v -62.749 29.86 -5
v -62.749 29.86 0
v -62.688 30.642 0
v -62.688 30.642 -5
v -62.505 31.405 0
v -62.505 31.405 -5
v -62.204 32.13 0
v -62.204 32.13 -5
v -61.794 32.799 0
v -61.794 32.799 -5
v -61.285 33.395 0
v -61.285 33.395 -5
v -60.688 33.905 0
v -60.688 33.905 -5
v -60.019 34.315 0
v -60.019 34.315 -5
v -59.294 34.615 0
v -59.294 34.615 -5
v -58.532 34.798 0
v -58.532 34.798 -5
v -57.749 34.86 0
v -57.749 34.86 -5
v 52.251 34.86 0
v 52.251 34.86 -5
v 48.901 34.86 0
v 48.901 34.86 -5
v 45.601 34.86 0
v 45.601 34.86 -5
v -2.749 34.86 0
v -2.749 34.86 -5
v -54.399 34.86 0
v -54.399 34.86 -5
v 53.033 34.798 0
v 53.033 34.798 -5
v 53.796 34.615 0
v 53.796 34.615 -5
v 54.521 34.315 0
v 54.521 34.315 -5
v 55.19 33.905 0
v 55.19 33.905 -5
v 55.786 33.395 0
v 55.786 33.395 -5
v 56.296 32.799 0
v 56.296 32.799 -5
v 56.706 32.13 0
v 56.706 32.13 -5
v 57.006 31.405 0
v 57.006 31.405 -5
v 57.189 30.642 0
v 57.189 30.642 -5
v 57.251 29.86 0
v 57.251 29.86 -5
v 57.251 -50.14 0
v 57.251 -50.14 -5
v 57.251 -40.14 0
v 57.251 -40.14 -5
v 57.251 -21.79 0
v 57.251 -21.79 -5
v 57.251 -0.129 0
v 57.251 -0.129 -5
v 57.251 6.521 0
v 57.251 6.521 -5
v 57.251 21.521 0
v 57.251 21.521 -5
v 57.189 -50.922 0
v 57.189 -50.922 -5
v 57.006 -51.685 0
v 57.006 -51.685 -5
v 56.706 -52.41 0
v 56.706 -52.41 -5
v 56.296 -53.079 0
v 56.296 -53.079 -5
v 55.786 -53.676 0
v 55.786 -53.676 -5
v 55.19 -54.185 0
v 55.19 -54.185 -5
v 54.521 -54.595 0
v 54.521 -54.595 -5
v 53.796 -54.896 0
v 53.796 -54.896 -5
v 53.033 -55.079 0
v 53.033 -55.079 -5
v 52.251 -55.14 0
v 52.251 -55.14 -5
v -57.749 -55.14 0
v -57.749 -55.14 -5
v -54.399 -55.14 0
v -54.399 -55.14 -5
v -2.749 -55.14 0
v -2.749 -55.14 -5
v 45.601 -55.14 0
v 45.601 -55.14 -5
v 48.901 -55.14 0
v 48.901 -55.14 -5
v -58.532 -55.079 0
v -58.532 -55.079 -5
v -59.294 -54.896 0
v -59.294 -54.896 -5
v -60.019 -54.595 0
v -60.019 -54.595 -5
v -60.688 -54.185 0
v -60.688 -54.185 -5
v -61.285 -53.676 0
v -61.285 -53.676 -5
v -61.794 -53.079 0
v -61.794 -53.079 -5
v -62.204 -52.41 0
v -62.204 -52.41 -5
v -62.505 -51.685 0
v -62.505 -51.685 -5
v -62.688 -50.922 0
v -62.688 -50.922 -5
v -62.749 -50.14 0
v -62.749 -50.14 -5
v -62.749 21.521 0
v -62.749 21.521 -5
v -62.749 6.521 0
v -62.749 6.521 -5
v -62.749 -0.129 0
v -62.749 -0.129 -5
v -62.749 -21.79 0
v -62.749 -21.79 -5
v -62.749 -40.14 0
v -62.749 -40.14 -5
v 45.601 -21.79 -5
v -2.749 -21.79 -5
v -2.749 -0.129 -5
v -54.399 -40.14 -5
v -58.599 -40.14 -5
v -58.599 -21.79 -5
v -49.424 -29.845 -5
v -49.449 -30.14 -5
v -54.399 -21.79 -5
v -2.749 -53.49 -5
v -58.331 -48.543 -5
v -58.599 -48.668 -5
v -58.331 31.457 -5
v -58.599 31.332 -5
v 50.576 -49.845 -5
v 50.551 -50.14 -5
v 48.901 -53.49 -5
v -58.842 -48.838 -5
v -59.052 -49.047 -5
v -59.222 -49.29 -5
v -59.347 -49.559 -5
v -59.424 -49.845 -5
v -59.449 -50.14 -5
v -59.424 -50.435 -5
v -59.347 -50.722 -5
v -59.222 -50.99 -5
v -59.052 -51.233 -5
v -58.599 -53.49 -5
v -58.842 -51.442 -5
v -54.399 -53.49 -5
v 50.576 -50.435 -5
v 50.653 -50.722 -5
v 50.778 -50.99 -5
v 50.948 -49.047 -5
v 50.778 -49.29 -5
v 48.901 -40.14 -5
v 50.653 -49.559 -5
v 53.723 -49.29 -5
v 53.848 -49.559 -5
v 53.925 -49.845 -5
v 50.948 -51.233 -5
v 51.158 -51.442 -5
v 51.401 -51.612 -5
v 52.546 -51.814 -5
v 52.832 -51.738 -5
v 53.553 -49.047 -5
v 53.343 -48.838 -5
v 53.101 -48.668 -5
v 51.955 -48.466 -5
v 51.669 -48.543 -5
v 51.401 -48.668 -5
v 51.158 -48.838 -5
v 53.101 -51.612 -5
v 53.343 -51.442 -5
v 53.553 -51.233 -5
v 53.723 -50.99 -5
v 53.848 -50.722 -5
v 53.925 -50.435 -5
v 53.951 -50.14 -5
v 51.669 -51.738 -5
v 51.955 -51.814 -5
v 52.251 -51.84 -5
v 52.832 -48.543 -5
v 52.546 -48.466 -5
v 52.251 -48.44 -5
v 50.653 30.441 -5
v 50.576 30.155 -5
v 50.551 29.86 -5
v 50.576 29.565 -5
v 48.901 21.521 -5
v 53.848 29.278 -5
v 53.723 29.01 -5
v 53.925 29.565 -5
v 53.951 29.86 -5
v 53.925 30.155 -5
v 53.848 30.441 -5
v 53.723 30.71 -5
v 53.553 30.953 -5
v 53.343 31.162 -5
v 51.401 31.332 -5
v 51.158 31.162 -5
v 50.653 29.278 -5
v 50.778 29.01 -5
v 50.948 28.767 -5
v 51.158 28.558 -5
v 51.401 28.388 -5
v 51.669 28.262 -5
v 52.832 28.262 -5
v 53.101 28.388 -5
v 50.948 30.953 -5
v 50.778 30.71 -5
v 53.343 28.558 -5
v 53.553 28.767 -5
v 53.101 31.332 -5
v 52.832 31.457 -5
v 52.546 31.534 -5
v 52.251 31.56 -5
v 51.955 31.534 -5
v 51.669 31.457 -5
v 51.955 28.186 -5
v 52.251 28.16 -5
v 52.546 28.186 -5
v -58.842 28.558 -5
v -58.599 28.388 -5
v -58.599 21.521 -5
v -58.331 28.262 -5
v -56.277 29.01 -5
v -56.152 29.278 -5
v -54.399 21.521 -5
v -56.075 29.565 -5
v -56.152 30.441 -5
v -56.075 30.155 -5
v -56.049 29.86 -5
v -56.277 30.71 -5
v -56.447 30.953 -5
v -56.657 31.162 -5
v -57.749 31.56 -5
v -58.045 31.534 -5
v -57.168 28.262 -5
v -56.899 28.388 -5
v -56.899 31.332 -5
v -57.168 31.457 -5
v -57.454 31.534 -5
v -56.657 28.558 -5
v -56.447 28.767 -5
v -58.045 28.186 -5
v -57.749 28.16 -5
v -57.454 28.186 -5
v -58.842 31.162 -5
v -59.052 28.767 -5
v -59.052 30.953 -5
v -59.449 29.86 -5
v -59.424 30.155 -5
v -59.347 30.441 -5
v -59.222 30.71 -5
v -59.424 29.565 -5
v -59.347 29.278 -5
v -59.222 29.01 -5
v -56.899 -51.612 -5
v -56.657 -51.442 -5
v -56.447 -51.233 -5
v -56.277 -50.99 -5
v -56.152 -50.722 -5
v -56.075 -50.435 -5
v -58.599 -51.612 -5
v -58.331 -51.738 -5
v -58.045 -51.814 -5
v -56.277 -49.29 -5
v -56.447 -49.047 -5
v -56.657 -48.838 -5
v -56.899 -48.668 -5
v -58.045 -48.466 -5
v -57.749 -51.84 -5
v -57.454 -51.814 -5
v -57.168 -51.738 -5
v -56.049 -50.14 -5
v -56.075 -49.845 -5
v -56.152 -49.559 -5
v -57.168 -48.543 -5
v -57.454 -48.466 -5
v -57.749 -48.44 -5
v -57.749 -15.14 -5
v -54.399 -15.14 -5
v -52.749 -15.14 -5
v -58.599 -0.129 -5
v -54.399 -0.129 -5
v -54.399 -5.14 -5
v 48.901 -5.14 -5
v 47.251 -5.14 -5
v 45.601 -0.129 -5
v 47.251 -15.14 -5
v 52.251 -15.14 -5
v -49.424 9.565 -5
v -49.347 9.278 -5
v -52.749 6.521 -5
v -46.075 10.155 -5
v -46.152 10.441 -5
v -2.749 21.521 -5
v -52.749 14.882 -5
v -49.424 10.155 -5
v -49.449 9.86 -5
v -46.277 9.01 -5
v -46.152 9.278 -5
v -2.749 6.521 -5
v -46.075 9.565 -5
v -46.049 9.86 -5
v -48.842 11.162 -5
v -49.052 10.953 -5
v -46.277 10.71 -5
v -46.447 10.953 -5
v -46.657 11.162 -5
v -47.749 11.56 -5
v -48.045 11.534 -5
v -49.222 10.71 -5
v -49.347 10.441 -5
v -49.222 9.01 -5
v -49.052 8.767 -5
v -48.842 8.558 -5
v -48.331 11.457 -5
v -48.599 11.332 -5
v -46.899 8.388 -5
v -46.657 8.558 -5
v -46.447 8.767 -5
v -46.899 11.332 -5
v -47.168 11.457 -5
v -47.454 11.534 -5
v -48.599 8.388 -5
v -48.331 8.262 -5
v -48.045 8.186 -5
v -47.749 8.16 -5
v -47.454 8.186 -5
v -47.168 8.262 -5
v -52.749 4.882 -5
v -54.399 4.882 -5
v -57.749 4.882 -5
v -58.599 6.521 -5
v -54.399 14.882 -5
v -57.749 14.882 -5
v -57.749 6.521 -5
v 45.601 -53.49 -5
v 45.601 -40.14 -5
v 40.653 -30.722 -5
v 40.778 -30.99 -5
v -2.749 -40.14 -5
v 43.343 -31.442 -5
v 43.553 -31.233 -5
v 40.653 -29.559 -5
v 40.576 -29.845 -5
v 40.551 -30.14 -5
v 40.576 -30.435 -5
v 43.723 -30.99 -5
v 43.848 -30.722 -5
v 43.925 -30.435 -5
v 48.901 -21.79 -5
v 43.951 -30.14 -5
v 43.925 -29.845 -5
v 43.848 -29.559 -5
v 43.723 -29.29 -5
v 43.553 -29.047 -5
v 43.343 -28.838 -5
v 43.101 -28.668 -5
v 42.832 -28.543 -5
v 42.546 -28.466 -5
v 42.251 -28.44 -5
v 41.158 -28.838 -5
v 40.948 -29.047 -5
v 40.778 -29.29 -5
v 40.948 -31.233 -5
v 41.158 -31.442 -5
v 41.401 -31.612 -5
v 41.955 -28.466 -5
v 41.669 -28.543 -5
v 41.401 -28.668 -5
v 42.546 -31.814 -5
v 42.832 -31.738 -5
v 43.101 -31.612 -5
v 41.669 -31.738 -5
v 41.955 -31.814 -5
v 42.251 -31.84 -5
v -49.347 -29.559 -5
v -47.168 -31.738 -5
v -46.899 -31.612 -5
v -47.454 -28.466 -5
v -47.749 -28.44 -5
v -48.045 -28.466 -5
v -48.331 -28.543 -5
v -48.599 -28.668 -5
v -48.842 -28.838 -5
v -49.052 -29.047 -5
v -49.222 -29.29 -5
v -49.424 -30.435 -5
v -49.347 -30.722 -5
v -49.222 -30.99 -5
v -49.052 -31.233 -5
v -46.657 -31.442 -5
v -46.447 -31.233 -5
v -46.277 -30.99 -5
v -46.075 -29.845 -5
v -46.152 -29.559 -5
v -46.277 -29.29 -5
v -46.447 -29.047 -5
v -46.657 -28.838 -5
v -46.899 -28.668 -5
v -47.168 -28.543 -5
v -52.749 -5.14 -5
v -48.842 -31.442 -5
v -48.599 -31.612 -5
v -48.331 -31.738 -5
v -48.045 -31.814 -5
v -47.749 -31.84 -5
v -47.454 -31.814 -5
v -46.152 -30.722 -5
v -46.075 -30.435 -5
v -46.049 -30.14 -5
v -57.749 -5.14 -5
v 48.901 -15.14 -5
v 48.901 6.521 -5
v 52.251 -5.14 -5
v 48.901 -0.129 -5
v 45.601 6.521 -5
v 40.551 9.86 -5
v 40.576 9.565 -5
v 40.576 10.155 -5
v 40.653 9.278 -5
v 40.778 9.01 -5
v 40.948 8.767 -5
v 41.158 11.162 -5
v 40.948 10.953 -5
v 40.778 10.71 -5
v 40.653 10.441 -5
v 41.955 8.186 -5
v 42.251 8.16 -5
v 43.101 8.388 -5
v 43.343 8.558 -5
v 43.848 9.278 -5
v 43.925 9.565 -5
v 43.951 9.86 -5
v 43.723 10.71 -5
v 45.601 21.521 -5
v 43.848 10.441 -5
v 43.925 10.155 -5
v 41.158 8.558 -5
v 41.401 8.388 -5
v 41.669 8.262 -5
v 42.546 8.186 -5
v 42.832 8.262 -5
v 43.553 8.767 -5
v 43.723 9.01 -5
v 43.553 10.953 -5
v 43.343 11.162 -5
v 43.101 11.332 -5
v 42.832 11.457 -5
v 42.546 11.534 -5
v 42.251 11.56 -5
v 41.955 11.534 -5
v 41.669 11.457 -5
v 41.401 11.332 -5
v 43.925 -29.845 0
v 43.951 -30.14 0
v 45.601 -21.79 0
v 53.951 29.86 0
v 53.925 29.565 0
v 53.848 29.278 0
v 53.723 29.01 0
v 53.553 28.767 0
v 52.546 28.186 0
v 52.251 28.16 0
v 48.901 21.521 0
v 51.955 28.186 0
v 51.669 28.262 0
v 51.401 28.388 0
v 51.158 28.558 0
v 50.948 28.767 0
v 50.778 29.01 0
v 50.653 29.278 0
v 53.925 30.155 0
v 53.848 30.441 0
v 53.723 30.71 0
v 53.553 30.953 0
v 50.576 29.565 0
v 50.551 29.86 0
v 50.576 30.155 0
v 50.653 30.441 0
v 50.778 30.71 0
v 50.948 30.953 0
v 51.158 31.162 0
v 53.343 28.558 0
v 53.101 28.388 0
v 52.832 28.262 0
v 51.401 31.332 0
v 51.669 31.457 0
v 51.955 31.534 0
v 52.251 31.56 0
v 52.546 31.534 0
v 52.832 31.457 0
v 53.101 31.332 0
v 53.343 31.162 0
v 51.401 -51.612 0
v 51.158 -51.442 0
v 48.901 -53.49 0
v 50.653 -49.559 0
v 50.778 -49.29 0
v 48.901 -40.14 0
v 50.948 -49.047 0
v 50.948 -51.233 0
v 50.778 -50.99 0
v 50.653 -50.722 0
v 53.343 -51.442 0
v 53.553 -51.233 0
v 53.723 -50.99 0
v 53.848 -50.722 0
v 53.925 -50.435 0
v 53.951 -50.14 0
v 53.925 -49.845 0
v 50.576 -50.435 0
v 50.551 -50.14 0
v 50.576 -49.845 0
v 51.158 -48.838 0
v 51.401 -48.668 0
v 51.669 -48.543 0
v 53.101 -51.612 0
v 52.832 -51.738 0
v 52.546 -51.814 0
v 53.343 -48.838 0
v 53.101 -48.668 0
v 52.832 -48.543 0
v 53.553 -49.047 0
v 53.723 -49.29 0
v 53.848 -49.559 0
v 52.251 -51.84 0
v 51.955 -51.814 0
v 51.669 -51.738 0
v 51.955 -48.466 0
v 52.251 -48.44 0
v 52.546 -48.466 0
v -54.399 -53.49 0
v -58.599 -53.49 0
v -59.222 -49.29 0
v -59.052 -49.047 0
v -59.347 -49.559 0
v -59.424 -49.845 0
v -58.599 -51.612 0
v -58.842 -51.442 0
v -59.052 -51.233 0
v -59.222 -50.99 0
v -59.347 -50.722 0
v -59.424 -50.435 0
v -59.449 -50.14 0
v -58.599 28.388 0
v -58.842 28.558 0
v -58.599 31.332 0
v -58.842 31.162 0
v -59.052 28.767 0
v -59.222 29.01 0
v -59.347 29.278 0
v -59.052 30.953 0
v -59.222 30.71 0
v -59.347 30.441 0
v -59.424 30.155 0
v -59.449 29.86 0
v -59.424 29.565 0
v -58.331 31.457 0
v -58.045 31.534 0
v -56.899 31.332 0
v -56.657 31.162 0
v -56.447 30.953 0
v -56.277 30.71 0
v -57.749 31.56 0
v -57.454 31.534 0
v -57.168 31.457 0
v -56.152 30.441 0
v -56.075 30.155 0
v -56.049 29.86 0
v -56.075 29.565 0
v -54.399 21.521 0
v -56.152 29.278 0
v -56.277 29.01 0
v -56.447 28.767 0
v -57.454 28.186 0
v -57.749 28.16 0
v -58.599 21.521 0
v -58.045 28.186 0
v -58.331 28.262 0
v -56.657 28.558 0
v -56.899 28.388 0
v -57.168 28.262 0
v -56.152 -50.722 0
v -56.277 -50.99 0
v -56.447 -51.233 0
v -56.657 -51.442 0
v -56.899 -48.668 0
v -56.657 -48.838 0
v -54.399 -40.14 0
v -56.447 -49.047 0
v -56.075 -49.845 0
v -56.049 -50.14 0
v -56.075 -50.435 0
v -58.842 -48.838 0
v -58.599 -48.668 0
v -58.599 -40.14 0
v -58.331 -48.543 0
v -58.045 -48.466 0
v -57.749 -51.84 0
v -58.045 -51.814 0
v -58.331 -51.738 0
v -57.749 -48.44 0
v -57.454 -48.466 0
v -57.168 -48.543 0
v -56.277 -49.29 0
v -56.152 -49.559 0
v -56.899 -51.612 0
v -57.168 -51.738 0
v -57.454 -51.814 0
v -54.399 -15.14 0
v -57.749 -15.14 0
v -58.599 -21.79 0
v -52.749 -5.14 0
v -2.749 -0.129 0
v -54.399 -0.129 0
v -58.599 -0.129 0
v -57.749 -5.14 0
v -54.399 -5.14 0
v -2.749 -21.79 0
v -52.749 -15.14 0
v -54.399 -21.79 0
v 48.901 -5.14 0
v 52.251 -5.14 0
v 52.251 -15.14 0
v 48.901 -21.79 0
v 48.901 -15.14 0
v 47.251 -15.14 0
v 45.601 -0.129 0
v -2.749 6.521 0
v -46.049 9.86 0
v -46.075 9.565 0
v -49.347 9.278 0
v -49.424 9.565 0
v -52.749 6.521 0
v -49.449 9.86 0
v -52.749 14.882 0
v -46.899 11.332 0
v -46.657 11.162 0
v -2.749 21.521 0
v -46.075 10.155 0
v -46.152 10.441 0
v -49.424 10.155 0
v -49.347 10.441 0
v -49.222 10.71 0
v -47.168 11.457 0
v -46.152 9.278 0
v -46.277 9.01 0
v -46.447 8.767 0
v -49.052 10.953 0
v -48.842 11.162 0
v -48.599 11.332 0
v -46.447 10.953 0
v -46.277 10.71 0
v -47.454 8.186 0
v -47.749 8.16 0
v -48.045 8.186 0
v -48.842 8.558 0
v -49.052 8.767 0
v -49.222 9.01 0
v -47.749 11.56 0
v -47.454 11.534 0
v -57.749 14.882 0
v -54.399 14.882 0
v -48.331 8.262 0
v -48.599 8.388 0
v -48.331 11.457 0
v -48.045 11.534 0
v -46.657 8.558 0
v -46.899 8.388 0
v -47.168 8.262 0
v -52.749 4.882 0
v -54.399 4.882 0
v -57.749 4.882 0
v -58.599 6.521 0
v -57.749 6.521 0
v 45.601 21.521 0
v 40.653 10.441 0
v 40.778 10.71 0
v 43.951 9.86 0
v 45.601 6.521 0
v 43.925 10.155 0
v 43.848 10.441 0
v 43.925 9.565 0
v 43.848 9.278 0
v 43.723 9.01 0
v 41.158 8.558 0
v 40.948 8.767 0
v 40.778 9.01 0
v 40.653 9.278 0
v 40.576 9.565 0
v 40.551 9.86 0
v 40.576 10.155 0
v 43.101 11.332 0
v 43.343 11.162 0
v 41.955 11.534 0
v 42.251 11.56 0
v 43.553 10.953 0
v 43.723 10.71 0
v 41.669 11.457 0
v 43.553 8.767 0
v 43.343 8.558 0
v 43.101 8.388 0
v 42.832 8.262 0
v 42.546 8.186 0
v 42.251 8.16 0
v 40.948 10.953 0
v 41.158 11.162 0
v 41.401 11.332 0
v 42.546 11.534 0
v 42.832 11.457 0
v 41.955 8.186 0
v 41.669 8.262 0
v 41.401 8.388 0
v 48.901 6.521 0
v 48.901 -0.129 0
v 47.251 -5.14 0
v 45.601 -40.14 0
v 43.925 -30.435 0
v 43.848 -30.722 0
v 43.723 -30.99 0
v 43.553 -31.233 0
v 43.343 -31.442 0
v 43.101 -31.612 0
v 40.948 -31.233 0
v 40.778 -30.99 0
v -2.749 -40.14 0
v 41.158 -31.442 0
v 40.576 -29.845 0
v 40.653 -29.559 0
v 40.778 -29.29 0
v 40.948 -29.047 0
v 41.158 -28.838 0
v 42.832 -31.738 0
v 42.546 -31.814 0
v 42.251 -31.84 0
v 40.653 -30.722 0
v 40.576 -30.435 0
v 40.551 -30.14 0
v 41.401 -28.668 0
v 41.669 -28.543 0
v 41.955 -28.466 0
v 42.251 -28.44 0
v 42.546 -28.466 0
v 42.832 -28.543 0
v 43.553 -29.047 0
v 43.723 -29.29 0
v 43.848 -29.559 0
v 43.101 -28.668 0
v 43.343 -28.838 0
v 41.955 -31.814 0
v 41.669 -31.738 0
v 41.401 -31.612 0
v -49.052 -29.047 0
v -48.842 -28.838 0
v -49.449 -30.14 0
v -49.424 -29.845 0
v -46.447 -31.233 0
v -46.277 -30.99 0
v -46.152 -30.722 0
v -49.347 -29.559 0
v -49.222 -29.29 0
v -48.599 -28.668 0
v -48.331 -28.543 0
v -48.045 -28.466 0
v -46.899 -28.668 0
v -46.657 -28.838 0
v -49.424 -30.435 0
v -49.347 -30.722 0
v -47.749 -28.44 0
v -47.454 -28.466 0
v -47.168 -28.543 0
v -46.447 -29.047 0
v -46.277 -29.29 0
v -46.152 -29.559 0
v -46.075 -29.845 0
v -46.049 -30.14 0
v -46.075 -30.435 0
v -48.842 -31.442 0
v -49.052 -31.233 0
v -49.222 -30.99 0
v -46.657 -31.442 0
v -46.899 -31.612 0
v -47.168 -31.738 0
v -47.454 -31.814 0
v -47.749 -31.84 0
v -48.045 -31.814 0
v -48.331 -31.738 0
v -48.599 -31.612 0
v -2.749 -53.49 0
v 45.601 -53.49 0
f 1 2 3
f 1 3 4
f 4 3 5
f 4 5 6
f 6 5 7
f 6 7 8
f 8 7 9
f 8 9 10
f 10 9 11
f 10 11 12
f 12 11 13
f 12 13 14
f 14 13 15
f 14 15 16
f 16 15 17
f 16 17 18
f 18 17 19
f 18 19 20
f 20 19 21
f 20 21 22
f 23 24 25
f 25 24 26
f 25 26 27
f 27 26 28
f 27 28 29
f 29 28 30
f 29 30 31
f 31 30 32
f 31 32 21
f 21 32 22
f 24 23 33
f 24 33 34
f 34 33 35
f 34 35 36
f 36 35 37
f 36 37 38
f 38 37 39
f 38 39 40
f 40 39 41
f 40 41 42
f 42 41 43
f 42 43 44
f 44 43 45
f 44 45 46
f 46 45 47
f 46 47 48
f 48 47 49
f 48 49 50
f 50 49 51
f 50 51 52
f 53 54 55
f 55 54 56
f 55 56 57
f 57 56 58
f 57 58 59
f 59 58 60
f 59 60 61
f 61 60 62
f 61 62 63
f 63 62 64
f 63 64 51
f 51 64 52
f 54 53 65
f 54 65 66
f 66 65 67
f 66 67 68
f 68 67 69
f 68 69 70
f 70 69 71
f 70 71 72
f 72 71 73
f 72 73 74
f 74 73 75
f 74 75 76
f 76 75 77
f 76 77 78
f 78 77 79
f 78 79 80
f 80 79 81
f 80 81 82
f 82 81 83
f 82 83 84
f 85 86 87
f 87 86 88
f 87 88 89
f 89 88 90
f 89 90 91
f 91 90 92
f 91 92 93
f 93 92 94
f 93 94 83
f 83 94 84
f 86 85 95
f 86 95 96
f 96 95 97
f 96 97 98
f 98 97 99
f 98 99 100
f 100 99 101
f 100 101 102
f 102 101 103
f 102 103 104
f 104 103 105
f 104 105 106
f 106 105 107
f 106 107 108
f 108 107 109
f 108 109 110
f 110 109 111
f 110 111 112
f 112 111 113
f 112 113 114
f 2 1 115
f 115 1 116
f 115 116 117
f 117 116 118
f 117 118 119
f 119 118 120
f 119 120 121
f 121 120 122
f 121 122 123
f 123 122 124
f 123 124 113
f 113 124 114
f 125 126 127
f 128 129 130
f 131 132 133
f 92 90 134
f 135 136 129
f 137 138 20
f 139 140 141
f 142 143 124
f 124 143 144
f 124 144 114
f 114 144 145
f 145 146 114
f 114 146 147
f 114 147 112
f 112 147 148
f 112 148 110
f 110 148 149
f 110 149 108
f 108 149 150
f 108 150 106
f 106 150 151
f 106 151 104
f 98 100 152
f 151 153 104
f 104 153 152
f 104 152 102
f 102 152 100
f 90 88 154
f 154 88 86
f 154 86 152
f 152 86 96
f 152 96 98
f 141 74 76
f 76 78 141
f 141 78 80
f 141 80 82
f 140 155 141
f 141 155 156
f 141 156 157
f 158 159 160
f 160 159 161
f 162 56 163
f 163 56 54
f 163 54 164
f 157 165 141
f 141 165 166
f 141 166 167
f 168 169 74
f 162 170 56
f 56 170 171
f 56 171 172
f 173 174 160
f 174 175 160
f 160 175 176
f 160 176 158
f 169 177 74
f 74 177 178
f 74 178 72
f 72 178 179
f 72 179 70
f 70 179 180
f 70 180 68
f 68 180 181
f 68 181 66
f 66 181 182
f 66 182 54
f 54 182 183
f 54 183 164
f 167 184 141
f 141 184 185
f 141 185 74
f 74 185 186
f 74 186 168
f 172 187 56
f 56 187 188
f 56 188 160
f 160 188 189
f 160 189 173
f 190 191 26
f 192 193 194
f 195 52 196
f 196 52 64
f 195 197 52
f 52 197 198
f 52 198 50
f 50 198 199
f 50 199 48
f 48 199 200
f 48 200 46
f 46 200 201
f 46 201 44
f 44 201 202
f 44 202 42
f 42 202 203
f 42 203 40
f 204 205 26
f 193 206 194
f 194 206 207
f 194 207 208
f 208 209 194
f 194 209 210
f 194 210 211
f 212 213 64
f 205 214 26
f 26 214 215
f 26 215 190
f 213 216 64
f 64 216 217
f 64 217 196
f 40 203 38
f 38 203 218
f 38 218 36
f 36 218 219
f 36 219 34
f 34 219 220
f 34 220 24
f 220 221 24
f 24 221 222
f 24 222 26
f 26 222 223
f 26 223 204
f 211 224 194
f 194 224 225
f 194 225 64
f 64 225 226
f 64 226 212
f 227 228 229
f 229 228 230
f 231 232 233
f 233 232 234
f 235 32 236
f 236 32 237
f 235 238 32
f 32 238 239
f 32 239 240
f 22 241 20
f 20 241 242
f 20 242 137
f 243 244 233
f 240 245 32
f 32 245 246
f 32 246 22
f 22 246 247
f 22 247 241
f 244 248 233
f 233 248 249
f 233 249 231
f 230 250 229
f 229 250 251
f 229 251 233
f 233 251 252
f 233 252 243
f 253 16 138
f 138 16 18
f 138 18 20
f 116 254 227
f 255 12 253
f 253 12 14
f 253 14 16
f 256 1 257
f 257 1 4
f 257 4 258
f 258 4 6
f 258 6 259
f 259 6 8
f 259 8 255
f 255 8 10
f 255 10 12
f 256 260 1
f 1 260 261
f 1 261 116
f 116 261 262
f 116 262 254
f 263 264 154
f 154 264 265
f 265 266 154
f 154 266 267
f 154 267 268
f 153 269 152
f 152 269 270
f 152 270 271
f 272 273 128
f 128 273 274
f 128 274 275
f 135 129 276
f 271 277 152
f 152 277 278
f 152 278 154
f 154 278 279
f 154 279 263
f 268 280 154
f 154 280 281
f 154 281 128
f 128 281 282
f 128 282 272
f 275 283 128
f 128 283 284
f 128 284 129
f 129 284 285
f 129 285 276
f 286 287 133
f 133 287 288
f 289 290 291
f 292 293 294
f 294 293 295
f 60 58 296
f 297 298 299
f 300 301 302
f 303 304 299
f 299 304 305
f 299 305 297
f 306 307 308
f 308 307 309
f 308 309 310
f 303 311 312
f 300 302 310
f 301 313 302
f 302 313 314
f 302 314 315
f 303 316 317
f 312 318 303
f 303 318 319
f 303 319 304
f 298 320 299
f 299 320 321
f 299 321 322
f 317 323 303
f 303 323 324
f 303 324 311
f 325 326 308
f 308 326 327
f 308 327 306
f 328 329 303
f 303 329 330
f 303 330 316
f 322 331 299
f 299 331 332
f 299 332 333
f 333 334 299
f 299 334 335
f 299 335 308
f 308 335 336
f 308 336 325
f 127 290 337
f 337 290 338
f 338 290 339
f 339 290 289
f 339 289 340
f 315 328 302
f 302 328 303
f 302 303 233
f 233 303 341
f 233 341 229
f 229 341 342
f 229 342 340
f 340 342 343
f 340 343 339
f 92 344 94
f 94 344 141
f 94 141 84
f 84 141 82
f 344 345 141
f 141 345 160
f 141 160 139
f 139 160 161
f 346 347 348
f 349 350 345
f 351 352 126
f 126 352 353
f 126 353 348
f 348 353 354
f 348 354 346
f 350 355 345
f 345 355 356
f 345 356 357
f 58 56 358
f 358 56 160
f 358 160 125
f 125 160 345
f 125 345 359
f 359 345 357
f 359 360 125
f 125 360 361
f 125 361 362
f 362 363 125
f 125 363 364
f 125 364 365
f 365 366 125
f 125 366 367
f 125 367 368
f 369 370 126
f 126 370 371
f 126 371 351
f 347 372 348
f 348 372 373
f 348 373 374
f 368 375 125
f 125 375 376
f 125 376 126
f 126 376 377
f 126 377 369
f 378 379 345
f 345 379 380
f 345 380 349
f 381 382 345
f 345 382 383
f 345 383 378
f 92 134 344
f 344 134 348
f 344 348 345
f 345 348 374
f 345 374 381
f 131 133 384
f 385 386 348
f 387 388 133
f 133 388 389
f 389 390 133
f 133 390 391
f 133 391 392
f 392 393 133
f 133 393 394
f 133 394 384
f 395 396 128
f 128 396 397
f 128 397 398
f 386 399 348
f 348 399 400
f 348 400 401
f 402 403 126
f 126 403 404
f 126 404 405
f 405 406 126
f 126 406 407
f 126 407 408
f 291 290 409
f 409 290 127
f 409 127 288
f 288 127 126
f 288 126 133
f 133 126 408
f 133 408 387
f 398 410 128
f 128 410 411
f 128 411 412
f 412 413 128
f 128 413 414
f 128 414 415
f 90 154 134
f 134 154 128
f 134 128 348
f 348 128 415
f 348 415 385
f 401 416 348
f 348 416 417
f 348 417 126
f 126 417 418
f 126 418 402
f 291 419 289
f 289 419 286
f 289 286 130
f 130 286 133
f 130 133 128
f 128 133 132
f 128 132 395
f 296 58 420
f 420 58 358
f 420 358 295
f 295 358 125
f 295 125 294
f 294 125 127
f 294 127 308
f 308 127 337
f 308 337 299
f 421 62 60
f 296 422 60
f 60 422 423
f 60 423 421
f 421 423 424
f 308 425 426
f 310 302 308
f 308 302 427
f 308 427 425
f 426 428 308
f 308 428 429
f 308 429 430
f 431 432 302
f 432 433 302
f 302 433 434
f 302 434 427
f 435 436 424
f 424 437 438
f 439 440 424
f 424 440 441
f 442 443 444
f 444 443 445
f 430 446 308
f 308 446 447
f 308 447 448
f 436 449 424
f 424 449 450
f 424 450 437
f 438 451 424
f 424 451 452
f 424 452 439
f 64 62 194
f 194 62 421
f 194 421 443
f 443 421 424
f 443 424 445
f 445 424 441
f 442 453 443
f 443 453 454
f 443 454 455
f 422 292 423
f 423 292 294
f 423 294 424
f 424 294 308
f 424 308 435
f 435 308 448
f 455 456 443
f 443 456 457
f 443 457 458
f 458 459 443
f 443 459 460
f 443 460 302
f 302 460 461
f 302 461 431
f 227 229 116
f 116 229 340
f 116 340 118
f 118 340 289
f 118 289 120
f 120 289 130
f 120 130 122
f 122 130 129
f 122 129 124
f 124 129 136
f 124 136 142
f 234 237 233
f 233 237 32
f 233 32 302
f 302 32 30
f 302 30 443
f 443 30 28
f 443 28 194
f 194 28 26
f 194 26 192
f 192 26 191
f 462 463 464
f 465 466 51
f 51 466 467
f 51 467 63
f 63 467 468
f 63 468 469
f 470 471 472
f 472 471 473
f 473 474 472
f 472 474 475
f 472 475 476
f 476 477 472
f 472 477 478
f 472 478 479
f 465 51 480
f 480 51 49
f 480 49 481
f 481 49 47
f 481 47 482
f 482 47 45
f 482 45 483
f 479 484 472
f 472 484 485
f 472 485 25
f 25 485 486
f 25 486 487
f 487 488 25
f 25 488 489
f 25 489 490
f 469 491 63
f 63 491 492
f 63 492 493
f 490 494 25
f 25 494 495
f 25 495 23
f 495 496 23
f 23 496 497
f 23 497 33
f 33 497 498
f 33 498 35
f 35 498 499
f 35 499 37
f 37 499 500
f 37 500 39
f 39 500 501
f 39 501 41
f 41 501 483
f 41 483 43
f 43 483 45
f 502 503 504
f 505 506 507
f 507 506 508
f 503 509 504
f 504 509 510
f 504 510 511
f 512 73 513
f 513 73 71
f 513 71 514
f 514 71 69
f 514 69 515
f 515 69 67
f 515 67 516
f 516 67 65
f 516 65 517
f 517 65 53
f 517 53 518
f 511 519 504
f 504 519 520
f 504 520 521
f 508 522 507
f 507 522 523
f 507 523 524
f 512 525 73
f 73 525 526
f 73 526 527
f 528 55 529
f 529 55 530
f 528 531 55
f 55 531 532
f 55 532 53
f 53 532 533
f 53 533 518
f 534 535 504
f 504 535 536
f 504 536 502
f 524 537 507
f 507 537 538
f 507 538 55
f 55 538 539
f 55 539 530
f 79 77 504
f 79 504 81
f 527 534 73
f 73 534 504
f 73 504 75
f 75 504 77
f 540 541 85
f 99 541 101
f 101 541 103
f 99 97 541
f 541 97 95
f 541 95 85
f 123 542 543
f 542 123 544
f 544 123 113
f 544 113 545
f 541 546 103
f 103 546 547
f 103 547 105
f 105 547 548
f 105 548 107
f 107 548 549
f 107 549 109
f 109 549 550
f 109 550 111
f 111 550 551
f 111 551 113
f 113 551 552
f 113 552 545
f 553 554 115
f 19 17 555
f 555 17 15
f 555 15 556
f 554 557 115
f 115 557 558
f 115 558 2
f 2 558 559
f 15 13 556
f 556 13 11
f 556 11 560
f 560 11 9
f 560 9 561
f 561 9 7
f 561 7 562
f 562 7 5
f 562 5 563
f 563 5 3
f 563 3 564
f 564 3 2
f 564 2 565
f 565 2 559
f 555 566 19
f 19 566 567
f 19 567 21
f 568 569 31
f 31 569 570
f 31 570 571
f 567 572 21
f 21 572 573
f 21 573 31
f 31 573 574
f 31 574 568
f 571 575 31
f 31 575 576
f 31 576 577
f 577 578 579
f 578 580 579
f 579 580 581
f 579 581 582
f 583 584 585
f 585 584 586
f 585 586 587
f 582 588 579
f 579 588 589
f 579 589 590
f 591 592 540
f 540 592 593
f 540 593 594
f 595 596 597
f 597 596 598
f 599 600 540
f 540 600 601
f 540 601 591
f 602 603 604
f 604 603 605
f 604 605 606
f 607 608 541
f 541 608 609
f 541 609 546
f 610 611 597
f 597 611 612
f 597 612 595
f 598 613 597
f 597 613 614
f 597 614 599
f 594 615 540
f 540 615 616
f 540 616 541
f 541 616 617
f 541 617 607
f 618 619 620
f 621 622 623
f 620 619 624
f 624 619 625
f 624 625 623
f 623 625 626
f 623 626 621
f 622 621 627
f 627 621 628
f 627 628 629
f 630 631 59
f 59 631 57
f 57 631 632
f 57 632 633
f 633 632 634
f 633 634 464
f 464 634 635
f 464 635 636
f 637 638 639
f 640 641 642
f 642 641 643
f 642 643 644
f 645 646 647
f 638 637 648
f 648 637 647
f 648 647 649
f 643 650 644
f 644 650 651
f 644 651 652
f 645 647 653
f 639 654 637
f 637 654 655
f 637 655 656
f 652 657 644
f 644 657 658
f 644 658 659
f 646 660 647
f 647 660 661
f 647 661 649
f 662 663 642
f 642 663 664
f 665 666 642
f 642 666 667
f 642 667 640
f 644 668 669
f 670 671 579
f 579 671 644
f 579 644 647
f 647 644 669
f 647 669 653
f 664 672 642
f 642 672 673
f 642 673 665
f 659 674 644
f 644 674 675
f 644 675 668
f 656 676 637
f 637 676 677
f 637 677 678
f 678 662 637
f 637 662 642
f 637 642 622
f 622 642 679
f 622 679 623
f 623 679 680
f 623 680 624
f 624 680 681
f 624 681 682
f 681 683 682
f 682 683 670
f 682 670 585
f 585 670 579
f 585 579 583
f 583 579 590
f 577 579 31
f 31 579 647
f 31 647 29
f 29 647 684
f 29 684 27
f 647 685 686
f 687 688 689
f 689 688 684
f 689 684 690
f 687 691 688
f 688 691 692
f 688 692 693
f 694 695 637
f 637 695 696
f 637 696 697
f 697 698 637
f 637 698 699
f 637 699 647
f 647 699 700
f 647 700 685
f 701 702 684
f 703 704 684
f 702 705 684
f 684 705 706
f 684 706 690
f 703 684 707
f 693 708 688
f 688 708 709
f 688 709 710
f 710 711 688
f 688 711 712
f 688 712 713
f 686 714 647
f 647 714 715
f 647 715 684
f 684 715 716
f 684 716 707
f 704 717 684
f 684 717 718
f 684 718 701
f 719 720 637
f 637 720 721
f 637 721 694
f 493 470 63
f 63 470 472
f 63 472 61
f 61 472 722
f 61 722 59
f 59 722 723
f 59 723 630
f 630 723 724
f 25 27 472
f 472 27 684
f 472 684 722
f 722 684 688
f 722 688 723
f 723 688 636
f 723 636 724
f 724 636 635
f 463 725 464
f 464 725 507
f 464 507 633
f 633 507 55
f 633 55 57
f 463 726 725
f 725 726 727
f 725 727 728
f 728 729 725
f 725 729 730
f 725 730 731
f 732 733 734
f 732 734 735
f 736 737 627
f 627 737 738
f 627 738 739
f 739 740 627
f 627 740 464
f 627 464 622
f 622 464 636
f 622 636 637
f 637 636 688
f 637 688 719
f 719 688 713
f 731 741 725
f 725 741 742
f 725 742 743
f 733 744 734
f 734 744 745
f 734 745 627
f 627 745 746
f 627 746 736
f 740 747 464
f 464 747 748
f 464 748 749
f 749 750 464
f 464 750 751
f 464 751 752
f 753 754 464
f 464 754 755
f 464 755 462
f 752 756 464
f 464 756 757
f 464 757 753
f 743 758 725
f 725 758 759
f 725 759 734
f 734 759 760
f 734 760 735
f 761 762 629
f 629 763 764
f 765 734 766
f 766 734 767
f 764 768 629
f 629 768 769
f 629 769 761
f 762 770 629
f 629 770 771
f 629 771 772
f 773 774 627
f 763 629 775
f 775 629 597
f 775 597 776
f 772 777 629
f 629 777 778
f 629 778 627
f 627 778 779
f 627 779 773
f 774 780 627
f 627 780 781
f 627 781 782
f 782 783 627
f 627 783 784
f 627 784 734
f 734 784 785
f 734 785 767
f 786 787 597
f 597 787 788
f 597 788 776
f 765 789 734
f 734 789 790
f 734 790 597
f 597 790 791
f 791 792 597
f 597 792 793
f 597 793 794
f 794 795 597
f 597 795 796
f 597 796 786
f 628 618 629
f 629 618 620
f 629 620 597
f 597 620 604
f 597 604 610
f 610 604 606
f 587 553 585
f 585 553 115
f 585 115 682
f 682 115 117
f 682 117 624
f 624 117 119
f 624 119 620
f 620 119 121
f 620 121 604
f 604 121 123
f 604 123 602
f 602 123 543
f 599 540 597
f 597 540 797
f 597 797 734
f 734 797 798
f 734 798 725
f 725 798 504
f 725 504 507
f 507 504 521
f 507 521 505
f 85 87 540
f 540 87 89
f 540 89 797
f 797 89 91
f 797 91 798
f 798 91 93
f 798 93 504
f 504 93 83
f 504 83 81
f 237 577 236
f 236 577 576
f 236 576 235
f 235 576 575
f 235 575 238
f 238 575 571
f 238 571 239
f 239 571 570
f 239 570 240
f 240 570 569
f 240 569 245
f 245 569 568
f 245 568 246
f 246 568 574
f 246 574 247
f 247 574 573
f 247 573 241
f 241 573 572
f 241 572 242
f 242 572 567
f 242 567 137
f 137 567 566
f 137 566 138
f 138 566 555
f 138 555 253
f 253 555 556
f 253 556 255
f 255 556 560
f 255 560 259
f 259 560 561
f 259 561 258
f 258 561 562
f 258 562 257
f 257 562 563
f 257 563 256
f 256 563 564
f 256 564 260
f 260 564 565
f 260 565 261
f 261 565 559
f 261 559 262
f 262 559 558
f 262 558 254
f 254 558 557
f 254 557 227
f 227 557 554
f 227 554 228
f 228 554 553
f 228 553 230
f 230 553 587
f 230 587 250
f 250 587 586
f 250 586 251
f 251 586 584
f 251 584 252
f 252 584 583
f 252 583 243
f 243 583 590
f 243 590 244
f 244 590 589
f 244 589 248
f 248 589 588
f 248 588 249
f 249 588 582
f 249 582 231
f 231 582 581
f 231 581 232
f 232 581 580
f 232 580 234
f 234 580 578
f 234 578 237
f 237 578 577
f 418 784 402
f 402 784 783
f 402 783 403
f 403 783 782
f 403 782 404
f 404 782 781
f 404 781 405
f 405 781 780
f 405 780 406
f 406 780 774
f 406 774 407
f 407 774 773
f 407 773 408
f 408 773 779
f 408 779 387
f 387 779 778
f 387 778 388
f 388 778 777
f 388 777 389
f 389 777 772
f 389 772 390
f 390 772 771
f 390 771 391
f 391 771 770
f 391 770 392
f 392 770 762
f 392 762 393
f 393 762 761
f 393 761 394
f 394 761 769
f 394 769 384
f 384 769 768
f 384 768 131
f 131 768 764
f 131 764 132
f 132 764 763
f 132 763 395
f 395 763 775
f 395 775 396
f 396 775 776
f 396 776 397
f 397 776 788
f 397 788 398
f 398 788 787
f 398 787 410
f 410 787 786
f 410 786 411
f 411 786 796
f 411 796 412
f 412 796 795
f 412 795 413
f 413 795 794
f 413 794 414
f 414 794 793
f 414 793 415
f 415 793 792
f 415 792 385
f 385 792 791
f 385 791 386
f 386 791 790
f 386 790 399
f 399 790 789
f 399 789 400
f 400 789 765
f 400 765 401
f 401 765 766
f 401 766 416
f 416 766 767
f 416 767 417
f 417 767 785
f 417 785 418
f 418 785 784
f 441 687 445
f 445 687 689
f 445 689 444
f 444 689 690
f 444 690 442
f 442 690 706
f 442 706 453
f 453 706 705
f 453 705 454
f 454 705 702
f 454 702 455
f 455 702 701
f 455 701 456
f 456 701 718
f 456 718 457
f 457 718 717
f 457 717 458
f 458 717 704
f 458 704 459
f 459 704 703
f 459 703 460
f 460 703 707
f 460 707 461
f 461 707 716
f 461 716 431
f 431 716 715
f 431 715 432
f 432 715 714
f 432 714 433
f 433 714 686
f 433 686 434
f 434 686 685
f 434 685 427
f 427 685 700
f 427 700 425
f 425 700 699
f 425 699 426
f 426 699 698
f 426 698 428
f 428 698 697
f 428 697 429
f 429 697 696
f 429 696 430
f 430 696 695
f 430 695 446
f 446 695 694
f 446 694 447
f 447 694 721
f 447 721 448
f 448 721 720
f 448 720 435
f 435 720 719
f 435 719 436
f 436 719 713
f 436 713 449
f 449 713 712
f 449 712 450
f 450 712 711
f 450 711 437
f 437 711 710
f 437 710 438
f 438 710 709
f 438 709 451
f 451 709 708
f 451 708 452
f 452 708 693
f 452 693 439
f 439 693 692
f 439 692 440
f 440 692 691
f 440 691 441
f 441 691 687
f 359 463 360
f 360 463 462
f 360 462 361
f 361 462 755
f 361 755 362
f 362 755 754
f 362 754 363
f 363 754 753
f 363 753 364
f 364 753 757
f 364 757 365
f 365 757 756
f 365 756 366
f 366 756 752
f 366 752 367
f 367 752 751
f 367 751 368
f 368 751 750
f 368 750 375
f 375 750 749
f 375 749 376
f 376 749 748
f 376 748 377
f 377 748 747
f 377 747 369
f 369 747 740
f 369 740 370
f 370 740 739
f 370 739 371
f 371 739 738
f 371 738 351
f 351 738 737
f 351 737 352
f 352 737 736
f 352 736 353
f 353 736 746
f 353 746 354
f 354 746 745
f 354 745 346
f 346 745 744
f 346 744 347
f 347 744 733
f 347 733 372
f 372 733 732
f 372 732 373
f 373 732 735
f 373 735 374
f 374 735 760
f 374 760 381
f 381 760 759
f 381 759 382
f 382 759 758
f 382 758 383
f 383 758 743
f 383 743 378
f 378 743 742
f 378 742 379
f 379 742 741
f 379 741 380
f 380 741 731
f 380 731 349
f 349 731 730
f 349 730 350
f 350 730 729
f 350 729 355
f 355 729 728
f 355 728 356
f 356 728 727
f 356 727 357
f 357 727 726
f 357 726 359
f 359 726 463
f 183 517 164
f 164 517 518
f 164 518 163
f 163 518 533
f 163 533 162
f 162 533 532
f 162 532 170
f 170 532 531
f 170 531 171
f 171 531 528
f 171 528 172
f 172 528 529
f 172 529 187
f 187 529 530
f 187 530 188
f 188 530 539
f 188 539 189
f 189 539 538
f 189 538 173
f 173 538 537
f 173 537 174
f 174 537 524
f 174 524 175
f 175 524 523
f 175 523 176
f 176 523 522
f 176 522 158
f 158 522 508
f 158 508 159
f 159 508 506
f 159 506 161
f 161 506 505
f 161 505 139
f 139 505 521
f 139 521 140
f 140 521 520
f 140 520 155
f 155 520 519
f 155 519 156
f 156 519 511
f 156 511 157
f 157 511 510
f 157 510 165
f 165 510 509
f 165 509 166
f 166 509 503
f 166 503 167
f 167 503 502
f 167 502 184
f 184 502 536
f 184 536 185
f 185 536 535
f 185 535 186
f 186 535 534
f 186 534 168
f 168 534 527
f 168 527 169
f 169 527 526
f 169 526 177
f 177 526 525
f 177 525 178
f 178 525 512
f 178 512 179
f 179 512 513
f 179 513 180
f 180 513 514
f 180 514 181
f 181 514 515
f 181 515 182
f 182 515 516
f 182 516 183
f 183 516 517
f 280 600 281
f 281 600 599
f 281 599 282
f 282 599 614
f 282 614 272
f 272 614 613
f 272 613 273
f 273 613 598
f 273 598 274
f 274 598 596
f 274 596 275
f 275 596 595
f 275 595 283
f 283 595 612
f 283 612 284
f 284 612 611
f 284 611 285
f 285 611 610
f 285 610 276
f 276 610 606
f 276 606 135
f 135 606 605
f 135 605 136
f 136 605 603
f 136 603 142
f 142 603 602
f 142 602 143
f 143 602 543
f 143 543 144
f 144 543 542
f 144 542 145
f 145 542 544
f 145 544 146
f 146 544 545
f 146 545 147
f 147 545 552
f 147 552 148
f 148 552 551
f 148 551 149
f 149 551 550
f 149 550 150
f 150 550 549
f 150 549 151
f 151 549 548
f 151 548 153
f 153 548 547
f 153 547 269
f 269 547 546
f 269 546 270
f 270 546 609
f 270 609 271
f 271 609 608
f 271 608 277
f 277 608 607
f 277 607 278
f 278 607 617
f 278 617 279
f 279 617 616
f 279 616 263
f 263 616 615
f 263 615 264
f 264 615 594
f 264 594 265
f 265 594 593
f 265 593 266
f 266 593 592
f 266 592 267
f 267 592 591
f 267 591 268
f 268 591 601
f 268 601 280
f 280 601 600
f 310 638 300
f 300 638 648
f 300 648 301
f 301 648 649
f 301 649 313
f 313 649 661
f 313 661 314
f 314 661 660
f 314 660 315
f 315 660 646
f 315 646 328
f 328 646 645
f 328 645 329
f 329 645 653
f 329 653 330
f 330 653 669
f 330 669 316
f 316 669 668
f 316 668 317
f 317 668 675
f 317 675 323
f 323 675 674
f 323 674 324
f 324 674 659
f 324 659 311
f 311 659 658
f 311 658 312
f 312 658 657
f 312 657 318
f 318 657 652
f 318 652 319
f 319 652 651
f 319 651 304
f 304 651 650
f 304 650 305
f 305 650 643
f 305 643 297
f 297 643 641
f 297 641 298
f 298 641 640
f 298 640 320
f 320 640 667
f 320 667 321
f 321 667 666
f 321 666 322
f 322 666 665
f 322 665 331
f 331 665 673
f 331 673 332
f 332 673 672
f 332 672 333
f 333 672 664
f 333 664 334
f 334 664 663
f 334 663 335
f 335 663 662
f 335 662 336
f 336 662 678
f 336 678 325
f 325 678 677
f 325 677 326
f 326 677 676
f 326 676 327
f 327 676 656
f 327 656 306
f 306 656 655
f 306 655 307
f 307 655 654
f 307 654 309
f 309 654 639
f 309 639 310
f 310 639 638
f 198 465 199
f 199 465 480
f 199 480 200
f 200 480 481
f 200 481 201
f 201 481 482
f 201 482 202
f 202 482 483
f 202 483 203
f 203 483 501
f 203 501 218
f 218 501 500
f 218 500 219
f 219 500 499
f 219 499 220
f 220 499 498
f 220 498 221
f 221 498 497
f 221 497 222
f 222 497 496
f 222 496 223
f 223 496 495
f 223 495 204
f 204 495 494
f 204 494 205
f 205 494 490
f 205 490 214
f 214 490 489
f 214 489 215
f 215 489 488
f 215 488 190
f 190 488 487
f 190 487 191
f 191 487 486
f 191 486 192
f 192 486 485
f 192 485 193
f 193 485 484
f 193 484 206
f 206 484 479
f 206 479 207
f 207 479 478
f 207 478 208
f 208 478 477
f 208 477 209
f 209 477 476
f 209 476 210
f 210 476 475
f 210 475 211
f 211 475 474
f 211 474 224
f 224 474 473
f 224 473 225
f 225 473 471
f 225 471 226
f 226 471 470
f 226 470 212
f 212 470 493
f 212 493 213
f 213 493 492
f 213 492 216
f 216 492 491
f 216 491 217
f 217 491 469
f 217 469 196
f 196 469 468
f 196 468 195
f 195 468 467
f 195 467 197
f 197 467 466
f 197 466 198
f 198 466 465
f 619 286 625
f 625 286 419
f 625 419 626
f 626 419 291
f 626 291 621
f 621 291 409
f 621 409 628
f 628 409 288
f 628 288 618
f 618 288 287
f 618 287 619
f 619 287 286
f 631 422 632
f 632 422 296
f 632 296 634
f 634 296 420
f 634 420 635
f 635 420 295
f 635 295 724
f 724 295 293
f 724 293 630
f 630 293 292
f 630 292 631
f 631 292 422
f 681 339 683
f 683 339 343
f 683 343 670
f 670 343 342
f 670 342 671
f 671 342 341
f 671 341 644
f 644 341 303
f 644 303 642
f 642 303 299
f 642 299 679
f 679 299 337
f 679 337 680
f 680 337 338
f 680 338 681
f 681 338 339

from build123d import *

# Parameters (mm, degrees)
EXTRUDE_1_DEPTH      = 5
SKETCH_1_4_OUTSIDE_W = 152.016
SKETCH_1_4_OUTSIDE_H = 122.016
SKETCH_1_4_OUTSIDE_R = 1.7
CUT_EXTRUDE_3_DEPTH  = 84.683501662
SKETCH_3_W           = 5
SKETCH_3_H           = 10
CUT_EXTRUDE_4_DEPTH  = 10


with BuildPart() as part:
    # 스케치1 → 보스-돌출1 (new body)
    with BuildSketch(Plane.XY):
        with BuildLine():
            Line((-57.749377558, 34.859778143), (52.250622442, 34.859778143))
            ThreePointArc((52.250622442, 34.859778143), (55.786156348, 33.395312049), (57.250622442, 29.859778143))
            Line((57.250622442, 29.859778143), (57.250622442, -50.140221857))
            ThreePointArc((57.250622442, -50.140221857), (55.786156348, -53.675755763), (52.250622442, -55.140221857))
            Line((52.250622442, -55.140221857), (-57.749377558, -55.140221857))
            ThreePointArc((-57.749377558, -55.140221857), (-61.284911464, -53.675755763), (-62.749377558, -50.140221857))
            Line((-62.749377558, -50.140221857), (-62.749377558, 29.859778143))
            ThreePointArc((-62.749377558, 29.859778143), (-61.284911464, 33.395312049), (-57.749377558, 34.859778143))
        make_face()
    extrude(amount=-EXTRUDE_1_DEPTH)

    # 스케치1<4> outside → 컷-돌출3 (cut, through all)
    # profile 1 of 9: a face of its own
    with BuildSketch(Plane.XY):
        with Locations((-2.749, -10.14)):
            Rectangle(SKETCH_1_4_OUTSIDE_W, SKETCH_1_4_OUTSIDE_H)
        with BuildLine():
            Line((-57.749377558, 34.859778143), (52.250622442, 34.859778143))
            ThreePointArc((52.250622442, 34.859778143), (55.786156348, 33.395312049), (57.250622442, 29.859778143))
            Line((57.250622442, 29.859778143), (57.250622442, -50.140221857))
            ThreePointArc((57.250622442, -50.140221857), (55.786156348, -53.675755763), (52.250622442, -55.140221857))
            Line((52.250622442, -55.140221857), (-57.749377558, -55.140221857))
            ThreePointArc((-57.749377558, -55.140221857), (-61.284911464, -53.675755763), (-62.749377558, -50.140221857))
            Line((-62.749377558, -50.140221857), (-62.749377558, 29.859778143))
            ThreePointArc((-62.749377558, 29.859778143), (-61.284911464, 33.395312049), (-57.749377558, 34.859778143))
        make_face(mode=Mode.SUBTRACT)
    # profile 2 of 9: a face of its own
    with BuildSketch(Plane.XY):
        with Locations((-57.749377558, 29.859778143)):
            Circle(SKETCH_1_4_OUTSIDE_R)
    # profile 3 of 9: a face of its own
    with BuildSketch(Plane.XY):
        with Locations((52.250622442, 29.859778143)):
            Circle(SKETCH_1_4_OUTSIDE_R)
    # profile 4 of 9: a face of its own
    with BuildSketch(Plane.XY):
        with Locations((-57.749377558, -50.140221857)):
            Circle(SKETCH_1_4_OUTSIDE_R)
    # profile 5 of 9: a face of its own
    with BuildSketch(Plane.XY):
        with Locations((52.250622442, -50.140221857)):
            Circle(SKETCH_1_4_OUTSIDE_R)
    # profile 6 of 9: a face of its own
    with BuildSketch(Plane.XY):
        with Locations((-47.749377558, 9.859778143)):
            Circle(SKETCH_1_4_OUTSIDE_R)
    # profile 7 of 9: a face of its own
    with BuildSketch(Plane.XY):
        with Locations((-47.749377558, -30.140221857)):
            Circle(SKETCH_1_4_OUTSIDE_R)
    # profile 8 of 9: a face of its own
    with BuildSketch(Plane.XY):
        with Locations((42.250622442, 9.859778143)):
            Circle(SKETCH_1_4_OUTSIDE_R)
    # profile 9 of 9: a face of its own
    with BuildSketch(Plane.XY):
        with Locations((42.250622442, -30.140221857)):
            Circle(SKETCH_1_4_OUTSIDE_R)
    extrude(amount=-CUT_EXTRUDE_3_DEPTH, mode=Mode.SUBTRACT)

    # 스케치3 → 컷-돌출4 (cut)
    with BuildSketch(Plane.XY):
        with Locations((-55.249377558, -10.140221857)):
            Rectangle(SKETCH_3_W, SKETCH_3_H)
        with Locations((49.750622442, -10.140221857)):
            Rectangle(SKETCH_3_W, SKETCH_3_H)
        with Locations((-55.249377558, 9.881604628)):
            Rectangle(SKETCH_3_W, SKETCH_3_H)
    extrude(amount=-CUT_EXTRUDE_4_DEPTH, mode=Mode.SUBTRACT)


solid = part.part
